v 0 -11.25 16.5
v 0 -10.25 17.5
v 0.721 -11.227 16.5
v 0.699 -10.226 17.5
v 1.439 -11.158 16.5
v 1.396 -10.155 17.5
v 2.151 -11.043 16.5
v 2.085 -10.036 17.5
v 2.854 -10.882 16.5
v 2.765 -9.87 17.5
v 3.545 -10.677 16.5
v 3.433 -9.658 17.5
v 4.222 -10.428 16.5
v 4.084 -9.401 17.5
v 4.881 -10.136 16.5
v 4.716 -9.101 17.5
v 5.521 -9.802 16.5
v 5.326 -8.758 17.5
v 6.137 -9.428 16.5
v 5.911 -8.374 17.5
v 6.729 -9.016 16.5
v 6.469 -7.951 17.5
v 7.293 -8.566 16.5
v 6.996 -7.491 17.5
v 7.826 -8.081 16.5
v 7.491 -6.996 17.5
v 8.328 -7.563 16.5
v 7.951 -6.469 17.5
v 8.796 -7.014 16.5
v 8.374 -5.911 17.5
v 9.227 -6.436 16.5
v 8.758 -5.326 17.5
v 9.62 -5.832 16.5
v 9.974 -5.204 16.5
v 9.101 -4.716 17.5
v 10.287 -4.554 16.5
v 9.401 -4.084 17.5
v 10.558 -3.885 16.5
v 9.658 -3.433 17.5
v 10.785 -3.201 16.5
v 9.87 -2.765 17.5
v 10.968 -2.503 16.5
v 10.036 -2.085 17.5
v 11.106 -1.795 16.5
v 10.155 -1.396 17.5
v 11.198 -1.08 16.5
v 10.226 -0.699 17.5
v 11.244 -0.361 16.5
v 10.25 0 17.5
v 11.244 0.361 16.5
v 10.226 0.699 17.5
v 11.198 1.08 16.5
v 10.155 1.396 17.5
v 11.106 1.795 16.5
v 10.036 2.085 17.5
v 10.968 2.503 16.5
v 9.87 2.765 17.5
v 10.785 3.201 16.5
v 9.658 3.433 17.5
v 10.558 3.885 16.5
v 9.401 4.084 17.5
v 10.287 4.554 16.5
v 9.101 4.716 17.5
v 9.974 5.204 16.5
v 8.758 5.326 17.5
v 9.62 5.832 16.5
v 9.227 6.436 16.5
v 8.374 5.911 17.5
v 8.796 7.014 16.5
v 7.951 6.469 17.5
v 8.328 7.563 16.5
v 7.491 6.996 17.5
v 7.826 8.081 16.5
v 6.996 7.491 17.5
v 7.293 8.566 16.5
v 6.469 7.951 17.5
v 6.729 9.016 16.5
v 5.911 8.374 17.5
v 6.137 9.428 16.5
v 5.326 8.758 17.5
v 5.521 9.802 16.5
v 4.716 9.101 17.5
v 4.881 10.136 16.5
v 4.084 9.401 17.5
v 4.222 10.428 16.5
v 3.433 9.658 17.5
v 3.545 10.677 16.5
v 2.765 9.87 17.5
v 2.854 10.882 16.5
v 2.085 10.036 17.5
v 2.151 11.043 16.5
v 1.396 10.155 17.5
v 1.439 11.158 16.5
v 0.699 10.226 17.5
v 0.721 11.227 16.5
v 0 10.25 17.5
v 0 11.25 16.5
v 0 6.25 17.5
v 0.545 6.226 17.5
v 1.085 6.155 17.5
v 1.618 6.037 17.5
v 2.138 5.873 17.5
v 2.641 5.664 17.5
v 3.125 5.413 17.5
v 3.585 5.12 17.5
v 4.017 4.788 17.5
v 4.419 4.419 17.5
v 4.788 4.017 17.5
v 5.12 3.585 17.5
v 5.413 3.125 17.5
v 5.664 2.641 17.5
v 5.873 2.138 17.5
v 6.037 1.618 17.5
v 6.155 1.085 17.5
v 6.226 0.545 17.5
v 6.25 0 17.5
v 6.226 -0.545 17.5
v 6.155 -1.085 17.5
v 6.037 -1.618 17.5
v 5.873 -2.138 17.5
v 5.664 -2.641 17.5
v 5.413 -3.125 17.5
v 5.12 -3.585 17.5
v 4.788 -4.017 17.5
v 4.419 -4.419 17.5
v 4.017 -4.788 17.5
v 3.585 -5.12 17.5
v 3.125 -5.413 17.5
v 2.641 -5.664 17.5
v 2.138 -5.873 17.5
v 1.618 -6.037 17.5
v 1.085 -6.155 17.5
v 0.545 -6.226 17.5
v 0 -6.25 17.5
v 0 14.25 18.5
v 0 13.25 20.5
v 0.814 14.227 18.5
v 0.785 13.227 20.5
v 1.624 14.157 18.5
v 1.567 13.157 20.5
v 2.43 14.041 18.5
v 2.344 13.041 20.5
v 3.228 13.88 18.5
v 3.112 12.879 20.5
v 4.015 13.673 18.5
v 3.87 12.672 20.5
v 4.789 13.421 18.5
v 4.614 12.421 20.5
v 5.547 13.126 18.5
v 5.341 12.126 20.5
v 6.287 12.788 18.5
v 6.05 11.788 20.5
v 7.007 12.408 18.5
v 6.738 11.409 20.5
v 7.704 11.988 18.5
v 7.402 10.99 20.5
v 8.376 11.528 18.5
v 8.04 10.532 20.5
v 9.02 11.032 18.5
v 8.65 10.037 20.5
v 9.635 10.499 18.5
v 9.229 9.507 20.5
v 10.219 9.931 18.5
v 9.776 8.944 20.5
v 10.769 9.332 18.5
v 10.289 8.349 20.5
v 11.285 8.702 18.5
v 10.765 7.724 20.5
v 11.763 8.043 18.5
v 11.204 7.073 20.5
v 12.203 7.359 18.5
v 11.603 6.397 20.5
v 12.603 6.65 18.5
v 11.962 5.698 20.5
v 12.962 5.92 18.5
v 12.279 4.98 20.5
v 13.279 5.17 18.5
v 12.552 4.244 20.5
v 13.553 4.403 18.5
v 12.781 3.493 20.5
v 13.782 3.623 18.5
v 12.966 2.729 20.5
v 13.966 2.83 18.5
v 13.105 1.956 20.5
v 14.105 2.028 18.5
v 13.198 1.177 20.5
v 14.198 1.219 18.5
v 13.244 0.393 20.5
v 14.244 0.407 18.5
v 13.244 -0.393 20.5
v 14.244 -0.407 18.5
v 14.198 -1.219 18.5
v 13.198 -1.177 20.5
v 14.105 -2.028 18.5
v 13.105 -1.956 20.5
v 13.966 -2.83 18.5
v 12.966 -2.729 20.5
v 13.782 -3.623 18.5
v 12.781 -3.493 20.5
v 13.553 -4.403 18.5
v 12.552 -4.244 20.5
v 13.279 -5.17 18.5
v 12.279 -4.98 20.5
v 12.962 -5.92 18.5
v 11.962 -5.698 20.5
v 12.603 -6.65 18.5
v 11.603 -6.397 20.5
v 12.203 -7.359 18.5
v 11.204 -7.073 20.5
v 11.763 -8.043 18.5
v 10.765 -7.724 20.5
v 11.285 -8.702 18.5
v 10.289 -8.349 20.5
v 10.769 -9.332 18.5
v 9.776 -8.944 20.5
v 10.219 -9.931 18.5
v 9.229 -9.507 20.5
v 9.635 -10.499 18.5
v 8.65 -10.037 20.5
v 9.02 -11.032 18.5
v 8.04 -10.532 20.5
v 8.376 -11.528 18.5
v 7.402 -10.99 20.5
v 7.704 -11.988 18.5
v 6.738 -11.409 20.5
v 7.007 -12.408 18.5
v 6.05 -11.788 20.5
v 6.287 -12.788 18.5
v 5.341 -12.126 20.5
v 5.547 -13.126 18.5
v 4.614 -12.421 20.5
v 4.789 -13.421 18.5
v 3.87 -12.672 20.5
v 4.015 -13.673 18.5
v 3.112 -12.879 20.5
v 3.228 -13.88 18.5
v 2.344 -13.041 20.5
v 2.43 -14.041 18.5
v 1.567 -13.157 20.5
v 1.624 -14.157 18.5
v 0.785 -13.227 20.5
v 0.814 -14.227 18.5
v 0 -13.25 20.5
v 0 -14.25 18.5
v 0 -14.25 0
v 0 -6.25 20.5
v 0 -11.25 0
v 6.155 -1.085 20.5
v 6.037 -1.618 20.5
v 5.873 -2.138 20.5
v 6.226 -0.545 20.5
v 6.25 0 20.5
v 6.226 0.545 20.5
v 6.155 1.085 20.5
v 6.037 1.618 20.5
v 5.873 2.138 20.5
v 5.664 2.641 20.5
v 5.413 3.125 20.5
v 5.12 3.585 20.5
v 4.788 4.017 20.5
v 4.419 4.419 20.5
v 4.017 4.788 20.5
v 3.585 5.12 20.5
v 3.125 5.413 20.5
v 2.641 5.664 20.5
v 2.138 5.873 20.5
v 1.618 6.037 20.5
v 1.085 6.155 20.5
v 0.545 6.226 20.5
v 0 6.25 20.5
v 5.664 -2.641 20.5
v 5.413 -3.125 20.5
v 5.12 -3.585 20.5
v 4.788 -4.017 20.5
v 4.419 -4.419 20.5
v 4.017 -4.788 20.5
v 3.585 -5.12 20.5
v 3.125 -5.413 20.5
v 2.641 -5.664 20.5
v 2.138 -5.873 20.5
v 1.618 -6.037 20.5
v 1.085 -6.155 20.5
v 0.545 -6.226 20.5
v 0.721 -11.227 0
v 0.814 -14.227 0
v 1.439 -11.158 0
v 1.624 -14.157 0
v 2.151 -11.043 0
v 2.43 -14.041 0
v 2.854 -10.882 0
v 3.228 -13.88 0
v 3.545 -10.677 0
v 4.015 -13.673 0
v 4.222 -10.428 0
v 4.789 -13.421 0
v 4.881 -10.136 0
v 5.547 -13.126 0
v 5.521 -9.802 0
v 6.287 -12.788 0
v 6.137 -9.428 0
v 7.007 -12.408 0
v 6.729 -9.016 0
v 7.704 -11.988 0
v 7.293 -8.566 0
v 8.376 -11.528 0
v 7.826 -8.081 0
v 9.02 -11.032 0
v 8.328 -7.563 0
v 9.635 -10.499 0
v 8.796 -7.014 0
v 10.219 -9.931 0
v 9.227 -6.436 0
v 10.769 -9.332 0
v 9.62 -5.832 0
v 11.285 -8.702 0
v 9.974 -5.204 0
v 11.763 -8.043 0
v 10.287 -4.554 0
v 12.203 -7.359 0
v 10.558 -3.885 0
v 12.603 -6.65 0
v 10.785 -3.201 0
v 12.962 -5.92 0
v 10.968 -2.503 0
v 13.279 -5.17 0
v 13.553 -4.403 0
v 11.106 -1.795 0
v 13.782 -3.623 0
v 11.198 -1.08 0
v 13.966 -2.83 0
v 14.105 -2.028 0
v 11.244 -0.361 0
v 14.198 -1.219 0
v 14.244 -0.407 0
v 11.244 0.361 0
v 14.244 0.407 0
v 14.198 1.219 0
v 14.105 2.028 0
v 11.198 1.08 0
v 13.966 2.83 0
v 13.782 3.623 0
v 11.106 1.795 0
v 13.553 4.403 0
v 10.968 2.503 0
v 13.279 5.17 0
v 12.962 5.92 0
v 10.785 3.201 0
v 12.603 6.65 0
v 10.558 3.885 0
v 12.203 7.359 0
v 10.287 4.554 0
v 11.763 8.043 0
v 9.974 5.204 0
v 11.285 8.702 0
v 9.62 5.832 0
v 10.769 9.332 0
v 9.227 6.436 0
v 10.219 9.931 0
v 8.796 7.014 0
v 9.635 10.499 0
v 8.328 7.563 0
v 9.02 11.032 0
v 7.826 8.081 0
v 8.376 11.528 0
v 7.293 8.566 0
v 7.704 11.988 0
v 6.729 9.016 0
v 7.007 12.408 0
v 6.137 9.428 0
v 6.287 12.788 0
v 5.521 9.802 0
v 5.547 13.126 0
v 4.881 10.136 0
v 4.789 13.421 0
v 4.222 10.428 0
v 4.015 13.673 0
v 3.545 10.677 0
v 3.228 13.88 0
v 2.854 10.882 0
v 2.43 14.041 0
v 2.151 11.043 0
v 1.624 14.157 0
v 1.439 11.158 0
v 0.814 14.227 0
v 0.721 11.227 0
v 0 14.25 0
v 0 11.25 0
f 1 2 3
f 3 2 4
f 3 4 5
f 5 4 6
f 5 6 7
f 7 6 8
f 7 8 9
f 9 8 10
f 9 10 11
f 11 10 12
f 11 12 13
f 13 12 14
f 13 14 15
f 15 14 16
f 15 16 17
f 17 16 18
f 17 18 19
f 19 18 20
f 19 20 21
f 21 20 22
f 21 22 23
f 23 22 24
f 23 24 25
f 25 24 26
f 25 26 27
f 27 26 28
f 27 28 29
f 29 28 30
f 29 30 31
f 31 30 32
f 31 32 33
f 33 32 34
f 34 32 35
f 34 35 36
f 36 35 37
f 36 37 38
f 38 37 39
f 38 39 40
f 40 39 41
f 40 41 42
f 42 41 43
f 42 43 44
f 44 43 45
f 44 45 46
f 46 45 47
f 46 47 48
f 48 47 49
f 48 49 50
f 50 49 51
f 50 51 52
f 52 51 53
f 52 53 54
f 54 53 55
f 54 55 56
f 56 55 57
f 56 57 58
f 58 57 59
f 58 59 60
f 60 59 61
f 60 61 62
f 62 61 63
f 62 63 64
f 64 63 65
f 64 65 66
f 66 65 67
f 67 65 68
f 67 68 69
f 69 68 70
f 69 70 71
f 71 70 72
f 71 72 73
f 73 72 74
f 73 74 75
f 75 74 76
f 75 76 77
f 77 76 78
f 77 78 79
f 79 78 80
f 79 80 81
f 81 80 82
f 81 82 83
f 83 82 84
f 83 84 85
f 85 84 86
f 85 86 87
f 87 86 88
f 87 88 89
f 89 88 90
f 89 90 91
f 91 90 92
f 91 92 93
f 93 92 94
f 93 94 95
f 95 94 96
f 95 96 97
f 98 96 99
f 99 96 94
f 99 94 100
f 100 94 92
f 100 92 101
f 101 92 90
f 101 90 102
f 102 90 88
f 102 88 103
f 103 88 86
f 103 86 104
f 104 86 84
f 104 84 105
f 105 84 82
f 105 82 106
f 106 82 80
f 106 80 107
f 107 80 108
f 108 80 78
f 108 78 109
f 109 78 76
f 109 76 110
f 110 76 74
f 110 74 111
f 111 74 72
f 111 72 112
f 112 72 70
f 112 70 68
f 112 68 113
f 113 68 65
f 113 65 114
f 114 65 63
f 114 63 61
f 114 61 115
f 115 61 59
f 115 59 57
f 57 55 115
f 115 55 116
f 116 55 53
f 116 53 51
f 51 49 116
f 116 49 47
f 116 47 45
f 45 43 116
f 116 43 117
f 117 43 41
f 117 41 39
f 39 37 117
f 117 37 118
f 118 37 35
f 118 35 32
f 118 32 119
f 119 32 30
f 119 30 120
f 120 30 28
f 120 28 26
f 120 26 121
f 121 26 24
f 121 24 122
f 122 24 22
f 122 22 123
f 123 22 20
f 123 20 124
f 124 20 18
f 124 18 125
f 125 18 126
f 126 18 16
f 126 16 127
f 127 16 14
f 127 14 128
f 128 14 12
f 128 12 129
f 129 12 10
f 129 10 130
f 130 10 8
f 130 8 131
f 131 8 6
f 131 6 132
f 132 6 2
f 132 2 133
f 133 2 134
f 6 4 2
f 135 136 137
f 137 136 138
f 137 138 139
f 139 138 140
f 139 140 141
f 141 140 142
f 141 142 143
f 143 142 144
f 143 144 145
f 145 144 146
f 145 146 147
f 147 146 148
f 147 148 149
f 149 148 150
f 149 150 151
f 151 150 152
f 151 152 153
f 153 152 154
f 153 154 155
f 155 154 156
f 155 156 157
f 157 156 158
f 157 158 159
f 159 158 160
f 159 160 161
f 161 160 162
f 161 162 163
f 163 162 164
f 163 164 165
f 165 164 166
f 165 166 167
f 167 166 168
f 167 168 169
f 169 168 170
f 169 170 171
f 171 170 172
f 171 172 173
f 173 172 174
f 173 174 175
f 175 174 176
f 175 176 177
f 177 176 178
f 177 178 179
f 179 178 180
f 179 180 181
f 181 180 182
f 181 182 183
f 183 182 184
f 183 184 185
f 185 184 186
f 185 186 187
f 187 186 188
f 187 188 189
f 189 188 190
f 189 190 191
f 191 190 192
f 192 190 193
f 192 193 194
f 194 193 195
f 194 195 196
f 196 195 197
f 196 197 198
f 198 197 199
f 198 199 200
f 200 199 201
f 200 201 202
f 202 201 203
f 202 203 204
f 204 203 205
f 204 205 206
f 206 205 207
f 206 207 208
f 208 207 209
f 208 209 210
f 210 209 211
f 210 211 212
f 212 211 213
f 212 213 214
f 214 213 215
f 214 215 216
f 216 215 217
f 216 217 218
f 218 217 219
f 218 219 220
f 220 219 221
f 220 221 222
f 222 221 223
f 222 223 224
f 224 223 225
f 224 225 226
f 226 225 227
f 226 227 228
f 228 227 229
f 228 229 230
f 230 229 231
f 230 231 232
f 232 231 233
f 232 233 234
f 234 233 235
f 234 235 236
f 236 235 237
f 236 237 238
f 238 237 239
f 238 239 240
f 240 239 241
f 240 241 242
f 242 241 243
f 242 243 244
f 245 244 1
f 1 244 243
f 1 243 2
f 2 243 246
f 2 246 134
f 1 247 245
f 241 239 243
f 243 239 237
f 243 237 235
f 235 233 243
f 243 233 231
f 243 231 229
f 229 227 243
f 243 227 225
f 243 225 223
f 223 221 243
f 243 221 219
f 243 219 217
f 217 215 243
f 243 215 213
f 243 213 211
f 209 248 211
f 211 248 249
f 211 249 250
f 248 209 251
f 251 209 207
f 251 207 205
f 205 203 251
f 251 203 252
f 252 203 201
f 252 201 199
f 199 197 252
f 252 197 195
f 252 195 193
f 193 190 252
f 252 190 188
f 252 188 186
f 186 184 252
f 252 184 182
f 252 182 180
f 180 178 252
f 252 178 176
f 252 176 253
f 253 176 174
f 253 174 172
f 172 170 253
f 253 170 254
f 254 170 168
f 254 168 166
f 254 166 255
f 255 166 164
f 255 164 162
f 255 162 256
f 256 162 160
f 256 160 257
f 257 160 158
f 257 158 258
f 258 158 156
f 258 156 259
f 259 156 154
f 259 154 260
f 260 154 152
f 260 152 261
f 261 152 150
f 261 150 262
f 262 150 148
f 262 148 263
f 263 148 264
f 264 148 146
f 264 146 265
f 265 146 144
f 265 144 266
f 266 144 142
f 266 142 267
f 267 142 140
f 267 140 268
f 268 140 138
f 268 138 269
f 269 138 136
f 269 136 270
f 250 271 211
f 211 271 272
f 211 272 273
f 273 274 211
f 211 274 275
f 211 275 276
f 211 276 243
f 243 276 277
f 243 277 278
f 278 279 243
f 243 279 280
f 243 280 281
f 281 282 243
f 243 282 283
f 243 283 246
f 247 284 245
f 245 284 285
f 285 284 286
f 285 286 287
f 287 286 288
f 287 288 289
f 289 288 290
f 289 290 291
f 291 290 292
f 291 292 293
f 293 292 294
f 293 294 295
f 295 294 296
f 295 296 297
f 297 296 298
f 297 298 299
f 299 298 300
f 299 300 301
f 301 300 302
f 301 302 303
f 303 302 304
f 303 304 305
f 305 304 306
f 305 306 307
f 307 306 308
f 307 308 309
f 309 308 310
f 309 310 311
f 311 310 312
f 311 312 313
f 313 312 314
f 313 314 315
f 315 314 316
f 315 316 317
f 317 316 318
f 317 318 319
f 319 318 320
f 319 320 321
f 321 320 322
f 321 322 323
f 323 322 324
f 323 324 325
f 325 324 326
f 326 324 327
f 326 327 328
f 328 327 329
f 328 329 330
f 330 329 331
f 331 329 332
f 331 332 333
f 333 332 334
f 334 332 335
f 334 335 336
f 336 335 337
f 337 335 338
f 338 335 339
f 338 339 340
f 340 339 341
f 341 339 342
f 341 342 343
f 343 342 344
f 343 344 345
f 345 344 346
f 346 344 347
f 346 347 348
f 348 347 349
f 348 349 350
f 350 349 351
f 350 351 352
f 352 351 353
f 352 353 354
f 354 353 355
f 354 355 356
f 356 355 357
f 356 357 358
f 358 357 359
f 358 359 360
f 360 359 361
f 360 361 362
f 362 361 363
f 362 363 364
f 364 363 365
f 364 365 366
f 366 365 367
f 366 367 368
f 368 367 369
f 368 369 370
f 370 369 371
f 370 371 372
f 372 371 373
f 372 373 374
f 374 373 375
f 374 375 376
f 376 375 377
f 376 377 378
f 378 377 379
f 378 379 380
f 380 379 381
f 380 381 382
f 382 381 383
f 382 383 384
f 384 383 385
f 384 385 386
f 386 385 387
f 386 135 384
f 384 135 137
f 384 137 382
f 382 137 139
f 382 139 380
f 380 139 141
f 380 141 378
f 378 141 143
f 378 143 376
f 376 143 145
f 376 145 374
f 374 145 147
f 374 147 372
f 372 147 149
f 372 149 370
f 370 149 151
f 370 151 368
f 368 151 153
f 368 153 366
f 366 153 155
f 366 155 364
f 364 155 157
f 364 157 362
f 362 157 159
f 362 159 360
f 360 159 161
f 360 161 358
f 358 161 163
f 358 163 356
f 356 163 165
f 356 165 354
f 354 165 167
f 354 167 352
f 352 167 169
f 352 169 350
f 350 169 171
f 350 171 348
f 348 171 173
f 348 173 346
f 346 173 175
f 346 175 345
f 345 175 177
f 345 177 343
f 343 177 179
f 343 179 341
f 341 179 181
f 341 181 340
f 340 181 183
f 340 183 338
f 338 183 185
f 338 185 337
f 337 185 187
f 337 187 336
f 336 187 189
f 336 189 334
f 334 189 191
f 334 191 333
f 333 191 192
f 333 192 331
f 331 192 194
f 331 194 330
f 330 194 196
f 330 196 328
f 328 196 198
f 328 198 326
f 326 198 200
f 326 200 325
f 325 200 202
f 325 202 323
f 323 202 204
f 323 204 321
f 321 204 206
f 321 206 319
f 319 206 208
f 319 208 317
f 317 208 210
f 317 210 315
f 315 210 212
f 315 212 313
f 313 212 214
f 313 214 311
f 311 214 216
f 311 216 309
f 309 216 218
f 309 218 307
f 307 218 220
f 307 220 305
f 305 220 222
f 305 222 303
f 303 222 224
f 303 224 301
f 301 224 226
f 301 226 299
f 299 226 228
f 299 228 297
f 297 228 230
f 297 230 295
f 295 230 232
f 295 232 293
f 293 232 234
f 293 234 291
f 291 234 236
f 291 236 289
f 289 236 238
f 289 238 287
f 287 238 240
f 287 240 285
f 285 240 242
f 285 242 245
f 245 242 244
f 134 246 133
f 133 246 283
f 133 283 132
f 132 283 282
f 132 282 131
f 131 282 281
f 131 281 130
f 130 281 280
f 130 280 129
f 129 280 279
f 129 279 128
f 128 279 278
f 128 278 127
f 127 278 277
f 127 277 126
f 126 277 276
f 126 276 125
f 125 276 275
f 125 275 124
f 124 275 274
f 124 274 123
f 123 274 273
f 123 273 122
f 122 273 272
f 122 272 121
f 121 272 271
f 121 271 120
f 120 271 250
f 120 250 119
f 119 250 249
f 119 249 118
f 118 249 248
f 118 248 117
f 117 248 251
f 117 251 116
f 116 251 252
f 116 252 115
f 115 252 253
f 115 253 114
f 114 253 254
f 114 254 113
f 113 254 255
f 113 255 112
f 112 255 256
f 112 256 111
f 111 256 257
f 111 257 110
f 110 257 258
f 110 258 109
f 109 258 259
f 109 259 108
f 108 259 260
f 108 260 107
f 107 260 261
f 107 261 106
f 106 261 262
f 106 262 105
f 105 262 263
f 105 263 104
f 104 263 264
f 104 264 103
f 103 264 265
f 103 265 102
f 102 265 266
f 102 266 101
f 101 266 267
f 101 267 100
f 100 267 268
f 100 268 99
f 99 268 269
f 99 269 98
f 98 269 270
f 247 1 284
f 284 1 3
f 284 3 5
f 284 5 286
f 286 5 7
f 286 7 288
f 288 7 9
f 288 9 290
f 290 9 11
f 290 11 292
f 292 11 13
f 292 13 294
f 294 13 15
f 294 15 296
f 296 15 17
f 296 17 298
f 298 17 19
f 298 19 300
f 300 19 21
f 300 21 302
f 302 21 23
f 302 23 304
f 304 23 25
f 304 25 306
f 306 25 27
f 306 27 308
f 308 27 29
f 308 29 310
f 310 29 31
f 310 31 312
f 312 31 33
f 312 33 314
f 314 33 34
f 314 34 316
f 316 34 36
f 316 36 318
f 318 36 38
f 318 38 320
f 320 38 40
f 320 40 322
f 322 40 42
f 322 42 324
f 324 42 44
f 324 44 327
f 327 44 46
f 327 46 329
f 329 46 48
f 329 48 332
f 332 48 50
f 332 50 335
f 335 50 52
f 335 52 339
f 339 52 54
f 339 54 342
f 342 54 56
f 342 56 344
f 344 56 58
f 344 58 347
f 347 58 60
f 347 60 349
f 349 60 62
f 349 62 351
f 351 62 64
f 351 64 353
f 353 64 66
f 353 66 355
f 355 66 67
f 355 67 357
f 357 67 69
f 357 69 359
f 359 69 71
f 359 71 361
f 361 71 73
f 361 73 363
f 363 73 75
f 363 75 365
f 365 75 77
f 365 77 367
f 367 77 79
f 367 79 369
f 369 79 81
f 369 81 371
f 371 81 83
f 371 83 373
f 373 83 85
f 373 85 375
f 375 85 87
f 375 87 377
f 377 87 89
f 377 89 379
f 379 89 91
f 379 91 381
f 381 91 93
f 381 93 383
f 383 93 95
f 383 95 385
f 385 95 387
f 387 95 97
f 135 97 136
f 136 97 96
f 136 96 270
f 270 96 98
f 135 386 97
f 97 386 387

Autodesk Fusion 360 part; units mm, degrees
sketch "Sketch1" plane through (0, 0, 0) normal (1, 0, 0) x (0, 1, 0)
  line L0 (0, 0) -> (-26.3359, 0) construction
  line L1 (-11.25, 0) -> (-11.25, 17.5)
  line L2 (-11.25, 17.5) -> (-6.25, 17.5)
  line L3 (-11.25, 0) -> (-14.25, 0)
  line L4 (-14.25, 0) -> (-14.25, 20.5)
  line L5 (-14.25, 20.5) -> (-6.25, 20.5)
  line L6 (-6.25, 20.5) -> (-6.25, 17.5)
  line L7 (0, 0) -> (0, 80.4746)
  dimension "d1" = 17.5
  dimension "d3" = 22.5
  dimension "d4" = 12.5
  dimension "d5" = 3
  dimension "d6" = 3
revolve "Revolve1" add sketch "Sketch1" angle 180 about axis through (0, 0, 0) along (0, 0, 1)
chamfer "Chamfer1" distance 1 distance2 2 1 edges at (14.25, 0, 20.5) measured on face at (2.7221, 11.2267, 20.5)
chamfer "Chamfer2" distance 1 distance2 1 1 edges at (11.25, 0, 17.5) measured on face at (6.7928, 8.9677, 5.8333)
equation "d6 = d5"
